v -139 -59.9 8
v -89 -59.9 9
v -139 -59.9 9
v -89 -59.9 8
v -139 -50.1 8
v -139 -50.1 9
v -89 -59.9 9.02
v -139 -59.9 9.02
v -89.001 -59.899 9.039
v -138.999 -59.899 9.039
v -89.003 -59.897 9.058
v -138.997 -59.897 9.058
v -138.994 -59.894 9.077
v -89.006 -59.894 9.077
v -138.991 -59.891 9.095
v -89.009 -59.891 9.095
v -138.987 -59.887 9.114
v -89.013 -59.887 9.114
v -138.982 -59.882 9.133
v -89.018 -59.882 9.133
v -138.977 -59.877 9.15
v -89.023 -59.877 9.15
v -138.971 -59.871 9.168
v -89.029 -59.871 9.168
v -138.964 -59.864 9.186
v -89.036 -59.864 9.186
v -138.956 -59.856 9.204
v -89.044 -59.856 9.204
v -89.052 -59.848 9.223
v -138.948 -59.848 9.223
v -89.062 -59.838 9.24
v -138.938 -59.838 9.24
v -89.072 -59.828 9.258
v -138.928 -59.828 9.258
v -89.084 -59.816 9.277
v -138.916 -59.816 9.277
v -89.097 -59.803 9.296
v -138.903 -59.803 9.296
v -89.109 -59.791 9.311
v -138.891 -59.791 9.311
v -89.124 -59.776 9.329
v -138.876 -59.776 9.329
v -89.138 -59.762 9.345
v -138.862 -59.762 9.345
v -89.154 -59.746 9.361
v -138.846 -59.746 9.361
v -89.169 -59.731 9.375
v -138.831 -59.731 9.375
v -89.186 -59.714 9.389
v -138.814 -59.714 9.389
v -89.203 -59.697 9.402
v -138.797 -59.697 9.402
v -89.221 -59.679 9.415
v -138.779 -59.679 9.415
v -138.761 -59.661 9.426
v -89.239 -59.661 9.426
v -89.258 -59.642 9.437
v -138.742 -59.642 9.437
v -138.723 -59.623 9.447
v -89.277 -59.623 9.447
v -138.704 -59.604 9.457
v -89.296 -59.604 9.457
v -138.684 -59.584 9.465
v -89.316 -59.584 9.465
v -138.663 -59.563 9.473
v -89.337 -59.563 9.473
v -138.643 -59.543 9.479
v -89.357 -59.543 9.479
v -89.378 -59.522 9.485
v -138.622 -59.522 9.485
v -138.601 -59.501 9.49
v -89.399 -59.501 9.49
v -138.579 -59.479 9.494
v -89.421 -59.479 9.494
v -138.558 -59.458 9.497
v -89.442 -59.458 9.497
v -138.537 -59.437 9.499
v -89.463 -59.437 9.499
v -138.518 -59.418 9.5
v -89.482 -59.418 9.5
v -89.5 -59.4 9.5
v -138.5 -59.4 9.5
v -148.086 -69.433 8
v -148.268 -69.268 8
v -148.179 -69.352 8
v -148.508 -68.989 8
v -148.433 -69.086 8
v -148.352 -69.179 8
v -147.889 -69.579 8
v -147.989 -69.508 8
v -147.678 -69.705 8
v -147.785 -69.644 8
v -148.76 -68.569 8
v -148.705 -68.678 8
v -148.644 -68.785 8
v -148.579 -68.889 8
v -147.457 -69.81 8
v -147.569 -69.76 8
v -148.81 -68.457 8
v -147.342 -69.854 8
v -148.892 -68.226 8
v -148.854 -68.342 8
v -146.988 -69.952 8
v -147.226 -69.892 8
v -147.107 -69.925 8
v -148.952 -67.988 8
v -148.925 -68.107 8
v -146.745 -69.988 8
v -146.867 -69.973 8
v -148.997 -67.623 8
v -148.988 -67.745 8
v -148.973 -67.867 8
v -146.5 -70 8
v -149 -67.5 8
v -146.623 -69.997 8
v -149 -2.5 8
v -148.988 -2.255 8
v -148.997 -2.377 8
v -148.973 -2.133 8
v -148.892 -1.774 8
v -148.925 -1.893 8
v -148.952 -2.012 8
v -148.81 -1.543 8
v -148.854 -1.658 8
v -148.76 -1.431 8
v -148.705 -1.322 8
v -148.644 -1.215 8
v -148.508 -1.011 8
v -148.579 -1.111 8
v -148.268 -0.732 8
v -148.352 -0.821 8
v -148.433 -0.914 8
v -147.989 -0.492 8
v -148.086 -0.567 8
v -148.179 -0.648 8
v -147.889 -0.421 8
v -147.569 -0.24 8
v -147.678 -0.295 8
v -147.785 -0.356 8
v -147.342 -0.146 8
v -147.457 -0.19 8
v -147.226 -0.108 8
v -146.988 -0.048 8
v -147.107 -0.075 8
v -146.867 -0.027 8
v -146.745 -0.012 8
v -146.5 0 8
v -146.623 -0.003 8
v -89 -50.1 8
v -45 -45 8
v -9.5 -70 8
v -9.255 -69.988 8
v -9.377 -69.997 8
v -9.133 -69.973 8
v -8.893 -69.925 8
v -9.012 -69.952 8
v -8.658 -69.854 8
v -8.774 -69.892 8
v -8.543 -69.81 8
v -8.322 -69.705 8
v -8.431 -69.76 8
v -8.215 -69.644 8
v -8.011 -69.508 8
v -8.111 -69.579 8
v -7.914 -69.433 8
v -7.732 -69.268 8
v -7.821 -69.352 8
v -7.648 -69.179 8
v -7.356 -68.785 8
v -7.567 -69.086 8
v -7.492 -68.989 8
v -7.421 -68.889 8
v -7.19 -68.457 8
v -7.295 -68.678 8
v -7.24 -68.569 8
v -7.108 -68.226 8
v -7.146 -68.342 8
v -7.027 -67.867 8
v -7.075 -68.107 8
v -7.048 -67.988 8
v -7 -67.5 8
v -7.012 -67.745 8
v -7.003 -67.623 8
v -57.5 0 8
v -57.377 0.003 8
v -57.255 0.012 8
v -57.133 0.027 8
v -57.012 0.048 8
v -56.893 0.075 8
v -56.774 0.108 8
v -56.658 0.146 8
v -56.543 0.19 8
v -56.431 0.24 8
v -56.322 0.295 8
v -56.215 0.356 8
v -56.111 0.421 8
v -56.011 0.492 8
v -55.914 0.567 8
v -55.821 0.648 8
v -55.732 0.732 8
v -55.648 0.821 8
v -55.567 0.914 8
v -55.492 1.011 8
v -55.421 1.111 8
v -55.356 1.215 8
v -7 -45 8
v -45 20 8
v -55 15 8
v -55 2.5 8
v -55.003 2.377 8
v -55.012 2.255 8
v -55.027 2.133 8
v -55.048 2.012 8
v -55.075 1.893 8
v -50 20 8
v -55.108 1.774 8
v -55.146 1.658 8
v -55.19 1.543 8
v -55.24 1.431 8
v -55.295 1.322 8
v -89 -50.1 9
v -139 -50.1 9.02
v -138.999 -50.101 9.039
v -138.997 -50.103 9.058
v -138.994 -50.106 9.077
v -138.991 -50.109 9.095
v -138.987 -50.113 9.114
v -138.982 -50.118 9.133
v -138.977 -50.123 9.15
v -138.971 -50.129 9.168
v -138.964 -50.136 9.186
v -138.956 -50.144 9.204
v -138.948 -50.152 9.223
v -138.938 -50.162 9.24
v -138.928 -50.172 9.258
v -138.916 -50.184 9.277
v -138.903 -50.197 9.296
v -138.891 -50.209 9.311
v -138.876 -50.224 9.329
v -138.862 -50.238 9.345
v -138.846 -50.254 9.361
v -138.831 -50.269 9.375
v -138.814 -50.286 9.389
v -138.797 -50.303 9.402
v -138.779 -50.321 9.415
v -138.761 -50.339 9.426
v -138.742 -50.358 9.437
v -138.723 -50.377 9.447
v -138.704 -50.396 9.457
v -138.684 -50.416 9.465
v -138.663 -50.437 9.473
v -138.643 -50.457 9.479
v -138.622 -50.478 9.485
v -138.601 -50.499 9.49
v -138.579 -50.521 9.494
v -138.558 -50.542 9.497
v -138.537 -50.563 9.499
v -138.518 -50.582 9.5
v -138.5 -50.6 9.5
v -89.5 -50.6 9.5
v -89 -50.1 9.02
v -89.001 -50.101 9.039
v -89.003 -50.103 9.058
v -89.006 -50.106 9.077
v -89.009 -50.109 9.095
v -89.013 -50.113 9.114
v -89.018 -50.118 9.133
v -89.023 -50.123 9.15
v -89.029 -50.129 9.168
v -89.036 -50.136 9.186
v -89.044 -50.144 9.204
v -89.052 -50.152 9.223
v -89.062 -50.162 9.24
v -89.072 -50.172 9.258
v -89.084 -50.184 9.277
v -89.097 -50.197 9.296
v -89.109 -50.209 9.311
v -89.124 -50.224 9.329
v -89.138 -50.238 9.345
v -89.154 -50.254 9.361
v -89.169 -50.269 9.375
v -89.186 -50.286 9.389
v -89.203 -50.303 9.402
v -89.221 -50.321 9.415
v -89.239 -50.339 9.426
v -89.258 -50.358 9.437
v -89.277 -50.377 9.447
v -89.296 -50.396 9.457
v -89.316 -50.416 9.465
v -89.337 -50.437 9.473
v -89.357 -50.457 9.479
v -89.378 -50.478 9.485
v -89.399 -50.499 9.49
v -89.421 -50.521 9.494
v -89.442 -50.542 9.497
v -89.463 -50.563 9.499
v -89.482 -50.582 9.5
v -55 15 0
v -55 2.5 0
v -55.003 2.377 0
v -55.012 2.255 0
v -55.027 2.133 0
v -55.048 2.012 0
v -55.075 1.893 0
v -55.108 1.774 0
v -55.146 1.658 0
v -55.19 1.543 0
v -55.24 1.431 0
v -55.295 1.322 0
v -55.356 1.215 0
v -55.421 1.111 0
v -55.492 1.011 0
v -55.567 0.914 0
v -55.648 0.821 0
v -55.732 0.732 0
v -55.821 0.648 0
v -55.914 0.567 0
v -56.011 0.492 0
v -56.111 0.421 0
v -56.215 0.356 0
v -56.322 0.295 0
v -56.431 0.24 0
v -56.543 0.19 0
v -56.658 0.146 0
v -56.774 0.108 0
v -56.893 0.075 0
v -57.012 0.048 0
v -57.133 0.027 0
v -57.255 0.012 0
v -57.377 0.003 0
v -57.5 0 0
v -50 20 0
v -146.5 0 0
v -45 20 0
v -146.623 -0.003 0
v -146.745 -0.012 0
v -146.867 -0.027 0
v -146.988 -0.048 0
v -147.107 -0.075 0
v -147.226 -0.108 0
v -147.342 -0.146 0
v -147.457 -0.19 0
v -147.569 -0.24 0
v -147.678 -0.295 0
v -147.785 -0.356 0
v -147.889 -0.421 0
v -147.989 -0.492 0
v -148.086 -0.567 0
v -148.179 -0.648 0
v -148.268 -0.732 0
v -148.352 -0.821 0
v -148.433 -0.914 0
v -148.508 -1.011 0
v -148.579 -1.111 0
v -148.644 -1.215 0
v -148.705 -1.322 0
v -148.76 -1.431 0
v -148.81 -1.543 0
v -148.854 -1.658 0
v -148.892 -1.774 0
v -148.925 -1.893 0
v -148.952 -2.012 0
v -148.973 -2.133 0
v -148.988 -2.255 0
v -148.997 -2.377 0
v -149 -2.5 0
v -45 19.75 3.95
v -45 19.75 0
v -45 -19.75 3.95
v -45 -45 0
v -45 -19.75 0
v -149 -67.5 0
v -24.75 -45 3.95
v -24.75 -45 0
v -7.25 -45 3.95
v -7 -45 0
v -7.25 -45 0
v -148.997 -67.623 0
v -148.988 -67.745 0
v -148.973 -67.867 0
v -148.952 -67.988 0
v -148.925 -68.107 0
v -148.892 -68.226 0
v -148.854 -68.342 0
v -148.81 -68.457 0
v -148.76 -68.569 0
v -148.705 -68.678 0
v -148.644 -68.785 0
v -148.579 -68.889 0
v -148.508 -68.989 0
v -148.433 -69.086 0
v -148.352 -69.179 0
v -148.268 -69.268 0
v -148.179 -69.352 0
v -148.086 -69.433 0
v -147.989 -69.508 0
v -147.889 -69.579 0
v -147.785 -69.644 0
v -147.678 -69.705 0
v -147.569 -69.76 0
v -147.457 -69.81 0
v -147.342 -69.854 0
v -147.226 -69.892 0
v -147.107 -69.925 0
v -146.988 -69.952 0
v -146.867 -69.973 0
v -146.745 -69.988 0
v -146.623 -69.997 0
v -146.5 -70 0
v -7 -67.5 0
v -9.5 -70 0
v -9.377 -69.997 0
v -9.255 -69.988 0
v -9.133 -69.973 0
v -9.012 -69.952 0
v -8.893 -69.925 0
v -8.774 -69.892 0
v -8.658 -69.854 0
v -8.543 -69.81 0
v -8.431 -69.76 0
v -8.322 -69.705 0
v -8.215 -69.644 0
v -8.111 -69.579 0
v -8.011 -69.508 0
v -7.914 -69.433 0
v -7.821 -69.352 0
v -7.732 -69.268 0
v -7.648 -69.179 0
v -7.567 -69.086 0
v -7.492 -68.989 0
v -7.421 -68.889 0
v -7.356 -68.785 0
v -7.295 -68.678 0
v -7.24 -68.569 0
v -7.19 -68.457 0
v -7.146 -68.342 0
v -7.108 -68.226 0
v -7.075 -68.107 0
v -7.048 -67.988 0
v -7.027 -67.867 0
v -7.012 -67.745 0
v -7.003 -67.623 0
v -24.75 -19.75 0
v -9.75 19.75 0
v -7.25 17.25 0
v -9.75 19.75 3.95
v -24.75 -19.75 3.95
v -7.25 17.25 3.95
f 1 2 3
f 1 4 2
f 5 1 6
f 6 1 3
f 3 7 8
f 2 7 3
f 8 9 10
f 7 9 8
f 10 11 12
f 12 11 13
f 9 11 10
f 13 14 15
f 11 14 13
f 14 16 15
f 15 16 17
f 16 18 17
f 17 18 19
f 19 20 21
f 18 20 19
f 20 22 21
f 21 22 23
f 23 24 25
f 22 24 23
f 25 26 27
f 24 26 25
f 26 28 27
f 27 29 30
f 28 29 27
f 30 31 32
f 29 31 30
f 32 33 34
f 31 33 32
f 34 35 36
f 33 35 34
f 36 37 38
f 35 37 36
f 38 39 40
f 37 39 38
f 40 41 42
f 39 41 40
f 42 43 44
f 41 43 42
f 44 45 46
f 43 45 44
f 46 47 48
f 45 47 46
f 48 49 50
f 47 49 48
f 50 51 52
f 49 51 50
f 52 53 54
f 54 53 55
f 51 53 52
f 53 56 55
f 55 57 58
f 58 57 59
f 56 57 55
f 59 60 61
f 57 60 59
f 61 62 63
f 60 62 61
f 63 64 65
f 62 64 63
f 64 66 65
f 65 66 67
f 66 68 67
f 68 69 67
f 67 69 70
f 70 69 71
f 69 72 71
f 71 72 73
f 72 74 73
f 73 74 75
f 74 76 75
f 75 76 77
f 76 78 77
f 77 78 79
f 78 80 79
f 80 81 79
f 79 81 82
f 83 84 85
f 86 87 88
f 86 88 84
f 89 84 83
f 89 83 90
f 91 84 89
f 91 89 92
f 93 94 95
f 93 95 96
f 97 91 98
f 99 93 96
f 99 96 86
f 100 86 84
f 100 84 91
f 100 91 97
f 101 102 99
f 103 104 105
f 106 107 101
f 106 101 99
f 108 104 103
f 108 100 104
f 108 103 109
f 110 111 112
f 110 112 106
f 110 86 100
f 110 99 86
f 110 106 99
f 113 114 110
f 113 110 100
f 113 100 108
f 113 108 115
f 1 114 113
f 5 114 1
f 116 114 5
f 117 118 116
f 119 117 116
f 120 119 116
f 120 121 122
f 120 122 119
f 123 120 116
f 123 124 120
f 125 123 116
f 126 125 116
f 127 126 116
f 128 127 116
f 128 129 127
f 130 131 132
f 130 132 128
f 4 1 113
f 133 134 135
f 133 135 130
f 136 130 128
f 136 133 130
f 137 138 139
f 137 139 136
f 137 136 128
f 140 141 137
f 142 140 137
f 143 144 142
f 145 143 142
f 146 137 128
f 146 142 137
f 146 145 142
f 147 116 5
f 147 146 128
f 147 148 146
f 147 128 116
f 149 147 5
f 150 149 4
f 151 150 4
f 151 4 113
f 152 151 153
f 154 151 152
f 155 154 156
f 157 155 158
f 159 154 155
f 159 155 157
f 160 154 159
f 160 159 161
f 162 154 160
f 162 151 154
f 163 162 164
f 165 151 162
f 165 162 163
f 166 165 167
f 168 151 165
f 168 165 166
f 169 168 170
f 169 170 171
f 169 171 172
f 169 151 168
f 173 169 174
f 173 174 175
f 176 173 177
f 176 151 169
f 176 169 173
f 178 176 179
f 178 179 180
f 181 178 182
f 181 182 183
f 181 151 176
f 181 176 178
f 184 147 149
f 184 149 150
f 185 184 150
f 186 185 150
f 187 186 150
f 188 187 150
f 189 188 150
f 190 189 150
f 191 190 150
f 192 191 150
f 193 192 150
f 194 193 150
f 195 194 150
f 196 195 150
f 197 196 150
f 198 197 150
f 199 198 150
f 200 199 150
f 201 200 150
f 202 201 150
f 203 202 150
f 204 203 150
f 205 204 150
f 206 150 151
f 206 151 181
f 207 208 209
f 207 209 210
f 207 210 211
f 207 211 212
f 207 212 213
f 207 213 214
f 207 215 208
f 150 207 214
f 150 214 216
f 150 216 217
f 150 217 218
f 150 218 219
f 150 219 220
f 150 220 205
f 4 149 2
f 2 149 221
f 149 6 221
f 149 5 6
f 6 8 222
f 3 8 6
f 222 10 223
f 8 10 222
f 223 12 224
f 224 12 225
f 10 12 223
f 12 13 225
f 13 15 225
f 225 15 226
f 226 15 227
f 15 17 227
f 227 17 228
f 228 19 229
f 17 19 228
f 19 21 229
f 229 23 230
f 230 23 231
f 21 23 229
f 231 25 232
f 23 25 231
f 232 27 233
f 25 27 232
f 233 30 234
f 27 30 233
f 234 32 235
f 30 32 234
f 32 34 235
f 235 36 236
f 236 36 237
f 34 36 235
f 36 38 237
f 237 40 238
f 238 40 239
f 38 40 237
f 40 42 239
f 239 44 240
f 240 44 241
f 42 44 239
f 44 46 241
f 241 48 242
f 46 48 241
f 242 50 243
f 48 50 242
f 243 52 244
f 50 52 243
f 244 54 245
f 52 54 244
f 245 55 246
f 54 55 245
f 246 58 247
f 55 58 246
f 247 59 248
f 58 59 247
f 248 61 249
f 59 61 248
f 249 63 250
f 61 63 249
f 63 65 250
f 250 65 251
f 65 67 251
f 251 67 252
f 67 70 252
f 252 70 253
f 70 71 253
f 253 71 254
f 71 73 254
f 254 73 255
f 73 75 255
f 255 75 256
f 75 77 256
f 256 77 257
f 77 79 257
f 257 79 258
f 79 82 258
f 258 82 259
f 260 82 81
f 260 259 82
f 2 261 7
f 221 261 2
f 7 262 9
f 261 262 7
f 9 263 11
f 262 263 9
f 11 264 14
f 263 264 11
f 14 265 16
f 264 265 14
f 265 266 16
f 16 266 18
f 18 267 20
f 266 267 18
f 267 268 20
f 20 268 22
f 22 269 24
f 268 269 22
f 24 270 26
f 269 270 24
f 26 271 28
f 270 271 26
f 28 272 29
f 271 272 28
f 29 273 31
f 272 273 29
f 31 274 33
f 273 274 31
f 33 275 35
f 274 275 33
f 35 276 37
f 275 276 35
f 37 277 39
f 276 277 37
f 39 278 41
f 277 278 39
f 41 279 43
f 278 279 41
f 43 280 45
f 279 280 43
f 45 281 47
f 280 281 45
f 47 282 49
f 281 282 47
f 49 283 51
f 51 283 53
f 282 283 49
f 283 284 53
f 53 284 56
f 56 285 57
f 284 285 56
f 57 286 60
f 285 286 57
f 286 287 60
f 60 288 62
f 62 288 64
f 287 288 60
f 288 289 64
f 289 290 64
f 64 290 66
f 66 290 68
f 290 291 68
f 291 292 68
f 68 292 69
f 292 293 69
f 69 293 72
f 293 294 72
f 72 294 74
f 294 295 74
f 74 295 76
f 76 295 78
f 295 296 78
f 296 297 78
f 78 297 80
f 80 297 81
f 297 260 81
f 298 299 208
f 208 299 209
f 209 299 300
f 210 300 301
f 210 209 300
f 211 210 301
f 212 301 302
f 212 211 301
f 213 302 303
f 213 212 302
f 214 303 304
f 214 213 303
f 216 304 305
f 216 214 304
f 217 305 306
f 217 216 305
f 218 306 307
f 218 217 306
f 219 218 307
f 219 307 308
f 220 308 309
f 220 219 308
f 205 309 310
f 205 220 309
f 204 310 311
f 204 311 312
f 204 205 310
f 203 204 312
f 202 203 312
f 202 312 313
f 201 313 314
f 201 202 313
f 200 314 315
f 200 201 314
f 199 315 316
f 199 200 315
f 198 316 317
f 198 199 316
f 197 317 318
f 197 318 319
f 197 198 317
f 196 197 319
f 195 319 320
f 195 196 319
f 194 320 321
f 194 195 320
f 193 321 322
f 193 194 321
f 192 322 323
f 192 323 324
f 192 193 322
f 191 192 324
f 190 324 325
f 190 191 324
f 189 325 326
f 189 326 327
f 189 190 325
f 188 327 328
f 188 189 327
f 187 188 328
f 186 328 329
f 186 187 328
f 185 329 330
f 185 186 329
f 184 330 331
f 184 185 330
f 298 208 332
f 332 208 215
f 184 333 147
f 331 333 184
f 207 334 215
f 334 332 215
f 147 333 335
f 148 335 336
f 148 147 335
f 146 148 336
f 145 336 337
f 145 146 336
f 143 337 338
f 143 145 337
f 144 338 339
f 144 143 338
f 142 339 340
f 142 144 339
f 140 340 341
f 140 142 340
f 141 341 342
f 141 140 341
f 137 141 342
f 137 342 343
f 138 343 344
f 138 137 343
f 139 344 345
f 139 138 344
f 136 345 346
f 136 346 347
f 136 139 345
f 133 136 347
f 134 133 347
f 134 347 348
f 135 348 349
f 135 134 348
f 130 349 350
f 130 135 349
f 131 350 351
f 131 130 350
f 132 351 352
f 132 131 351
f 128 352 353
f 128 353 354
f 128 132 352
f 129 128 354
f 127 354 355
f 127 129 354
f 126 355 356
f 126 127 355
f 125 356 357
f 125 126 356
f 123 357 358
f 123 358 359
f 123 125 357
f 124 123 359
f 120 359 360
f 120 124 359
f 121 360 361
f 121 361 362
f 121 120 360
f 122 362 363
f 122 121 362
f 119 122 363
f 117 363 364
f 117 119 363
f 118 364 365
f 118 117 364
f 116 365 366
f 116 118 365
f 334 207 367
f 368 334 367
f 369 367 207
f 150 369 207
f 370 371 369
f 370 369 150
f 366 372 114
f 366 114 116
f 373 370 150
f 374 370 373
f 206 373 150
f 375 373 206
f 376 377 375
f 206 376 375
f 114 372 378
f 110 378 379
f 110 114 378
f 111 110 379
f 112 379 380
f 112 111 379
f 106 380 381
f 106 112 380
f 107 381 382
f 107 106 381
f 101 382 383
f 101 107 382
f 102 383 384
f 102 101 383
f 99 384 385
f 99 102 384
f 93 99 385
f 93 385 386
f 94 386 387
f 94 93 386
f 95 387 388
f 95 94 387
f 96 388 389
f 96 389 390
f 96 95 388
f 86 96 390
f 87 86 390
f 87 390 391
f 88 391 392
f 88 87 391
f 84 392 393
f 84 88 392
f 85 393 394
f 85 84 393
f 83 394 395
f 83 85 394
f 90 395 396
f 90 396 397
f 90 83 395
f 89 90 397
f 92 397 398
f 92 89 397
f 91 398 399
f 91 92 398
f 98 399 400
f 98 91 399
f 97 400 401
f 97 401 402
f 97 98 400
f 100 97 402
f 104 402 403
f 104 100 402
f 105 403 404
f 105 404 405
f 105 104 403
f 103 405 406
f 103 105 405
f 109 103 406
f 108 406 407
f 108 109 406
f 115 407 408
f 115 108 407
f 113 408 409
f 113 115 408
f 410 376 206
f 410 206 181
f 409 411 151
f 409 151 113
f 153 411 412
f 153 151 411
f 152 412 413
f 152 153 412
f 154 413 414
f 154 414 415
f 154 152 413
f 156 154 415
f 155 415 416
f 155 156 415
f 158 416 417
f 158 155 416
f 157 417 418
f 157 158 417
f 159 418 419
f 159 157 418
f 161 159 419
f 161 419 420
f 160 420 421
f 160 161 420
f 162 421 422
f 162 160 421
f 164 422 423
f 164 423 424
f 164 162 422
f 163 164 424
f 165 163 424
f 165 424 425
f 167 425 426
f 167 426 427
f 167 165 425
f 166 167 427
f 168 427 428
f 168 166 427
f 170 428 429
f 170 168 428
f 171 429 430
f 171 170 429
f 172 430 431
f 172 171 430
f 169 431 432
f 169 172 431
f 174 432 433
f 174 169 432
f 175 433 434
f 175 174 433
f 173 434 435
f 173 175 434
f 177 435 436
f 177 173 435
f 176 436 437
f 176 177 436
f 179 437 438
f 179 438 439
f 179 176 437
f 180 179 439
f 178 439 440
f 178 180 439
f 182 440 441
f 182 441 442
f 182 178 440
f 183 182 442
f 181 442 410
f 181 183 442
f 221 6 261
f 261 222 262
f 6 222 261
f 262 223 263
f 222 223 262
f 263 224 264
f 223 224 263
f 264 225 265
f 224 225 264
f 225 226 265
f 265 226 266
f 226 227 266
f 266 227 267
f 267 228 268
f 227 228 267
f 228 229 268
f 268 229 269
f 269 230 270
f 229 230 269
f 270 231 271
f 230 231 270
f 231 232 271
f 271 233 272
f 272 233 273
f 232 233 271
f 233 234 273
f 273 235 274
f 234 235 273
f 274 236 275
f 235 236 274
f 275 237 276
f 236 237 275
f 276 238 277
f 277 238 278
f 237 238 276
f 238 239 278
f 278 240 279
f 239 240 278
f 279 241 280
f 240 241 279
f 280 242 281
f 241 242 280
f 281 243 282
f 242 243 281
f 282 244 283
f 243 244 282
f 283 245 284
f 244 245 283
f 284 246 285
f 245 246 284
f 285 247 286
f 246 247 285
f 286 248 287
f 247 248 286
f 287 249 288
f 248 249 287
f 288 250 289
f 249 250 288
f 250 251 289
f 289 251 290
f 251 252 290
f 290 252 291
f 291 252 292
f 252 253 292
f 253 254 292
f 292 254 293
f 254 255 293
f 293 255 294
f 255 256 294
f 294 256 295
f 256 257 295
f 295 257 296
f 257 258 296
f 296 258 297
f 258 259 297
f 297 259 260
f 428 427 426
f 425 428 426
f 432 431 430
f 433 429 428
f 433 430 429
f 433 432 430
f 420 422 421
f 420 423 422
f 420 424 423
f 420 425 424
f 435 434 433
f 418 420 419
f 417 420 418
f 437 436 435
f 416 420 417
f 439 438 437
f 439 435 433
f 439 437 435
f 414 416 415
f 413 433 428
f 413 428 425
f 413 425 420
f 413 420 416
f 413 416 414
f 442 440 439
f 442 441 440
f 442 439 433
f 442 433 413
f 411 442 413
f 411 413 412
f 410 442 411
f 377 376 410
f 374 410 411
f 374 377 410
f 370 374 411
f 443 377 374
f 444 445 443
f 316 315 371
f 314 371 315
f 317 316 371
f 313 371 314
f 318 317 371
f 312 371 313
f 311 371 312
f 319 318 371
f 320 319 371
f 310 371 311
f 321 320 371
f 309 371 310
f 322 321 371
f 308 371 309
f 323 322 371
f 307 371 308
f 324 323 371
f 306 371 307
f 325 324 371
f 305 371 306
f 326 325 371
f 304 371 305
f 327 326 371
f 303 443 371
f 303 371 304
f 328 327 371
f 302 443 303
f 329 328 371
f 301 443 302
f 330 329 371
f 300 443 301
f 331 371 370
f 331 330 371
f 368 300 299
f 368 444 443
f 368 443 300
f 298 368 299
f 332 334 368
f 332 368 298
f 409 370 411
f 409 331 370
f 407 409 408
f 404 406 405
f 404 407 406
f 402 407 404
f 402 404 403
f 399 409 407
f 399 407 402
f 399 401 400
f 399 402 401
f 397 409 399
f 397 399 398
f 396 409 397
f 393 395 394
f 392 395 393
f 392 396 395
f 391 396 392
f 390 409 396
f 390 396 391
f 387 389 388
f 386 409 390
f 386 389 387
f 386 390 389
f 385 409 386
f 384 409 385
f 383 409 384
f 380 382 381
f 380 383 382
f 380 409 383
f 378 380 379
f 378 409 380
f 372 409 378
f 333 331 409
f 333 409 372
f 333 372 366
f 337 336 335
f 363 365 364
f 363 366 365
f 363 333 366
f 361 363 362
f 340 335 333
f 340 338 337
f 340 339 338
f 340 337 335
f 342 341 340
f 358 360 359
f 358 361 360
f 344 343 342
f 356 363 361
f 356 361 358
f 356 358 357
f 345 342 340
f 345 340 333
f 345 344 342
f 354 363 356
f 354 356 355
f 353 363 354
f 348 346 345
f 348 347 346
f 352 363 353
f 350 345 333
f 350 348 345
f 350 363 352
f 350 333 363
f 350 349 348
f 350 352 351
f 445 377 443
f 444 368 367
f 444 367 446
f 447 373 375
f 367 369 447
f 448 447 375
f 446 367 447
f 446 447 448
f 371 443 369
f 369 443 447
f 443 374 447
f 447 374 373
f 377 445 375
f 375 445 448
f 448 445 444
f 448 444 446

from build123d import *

# Parameters (mm, degrees)
PAD_DEPTH       = 3.95
PAD001_DEPTH    = 8
SKETCH003_W     = 50
SKETCH003_H     = 9.8
PAD002_DEPTH    = 1.5
CHAMFER_SIZE    = 2.5
CHAMFER001_SIZE = 5
FILLET_R        = 2.5
FILLET001_R     = 0.5


with BuildPart() as part:
    # Sketch → Pad (new body)
    with BuildSketch(Plane.XY):
        Polygon((-45, 19.75), (-45, -19.75), (-24.75, -19.75), (-24.75, -45), (-7.25, -45), (-7.25, 19.75), align=None)
    extrude(amount=PAD_DEPTH)

    # Sketch002 → Pad001 (join)
    with BuildSketch(Plane.XY):
        Polygon((-45, 20), (-55, 20), (-55, 0), (-149, 0), (-149, -70), (-7, -70), (-7, -45), (-45, -45), align=None)
    extrude(amount=PAD001_DEPTH)

    # Sketch003 (on Face7 of Pad001) → Pad002 (join)
    with BuildSketch(Plane.XY.offset(8)):
        with Locations((-114, -55)):
            Rectangle(SKETCH003_W, SKETCH003_H)
    extrude(amount=PAD002_DEPTH)

    # Chamfer
    chamfer_edges = [part.edges().sort_by_distance(p)[0] for p in [
        (-7.25, 19.75, 1.975),
    ]]
    chamfer(chamfer_edges, length=CHAMFER_SIZE)

    # Chamfer001
    chamfer001_edges = [part.edges().sort_by_distance(p)[0] for p in [
        (-55, 20, 4),
    ]]
    chamfer(chamfer001_edges, length=CHAMFER001_SIZE)

    # Fillet
    fillet_edges = [part.edges().sort_by_distance(p)[0] for p in [
        (-55, 0, 4),
        (-149, 0, 4),
        (-149, -70, 4),
        (-7, -70, 4),
    ]]
    fillet(fillet_edges, radius=FILLET_R)

    # Fillet001
    fillet001_edges = [part.edges().sort_by_distance(p)[0] for p in [
        (-114, -59.9, 9.5),
        (-89, -55, 9.5),
        (-114, -50.1, 9.5),
        (-139, -55, 9.5),
    ]]
    fillet(fillet001_edges, radius=FILLET001_R)


solid = part.part
